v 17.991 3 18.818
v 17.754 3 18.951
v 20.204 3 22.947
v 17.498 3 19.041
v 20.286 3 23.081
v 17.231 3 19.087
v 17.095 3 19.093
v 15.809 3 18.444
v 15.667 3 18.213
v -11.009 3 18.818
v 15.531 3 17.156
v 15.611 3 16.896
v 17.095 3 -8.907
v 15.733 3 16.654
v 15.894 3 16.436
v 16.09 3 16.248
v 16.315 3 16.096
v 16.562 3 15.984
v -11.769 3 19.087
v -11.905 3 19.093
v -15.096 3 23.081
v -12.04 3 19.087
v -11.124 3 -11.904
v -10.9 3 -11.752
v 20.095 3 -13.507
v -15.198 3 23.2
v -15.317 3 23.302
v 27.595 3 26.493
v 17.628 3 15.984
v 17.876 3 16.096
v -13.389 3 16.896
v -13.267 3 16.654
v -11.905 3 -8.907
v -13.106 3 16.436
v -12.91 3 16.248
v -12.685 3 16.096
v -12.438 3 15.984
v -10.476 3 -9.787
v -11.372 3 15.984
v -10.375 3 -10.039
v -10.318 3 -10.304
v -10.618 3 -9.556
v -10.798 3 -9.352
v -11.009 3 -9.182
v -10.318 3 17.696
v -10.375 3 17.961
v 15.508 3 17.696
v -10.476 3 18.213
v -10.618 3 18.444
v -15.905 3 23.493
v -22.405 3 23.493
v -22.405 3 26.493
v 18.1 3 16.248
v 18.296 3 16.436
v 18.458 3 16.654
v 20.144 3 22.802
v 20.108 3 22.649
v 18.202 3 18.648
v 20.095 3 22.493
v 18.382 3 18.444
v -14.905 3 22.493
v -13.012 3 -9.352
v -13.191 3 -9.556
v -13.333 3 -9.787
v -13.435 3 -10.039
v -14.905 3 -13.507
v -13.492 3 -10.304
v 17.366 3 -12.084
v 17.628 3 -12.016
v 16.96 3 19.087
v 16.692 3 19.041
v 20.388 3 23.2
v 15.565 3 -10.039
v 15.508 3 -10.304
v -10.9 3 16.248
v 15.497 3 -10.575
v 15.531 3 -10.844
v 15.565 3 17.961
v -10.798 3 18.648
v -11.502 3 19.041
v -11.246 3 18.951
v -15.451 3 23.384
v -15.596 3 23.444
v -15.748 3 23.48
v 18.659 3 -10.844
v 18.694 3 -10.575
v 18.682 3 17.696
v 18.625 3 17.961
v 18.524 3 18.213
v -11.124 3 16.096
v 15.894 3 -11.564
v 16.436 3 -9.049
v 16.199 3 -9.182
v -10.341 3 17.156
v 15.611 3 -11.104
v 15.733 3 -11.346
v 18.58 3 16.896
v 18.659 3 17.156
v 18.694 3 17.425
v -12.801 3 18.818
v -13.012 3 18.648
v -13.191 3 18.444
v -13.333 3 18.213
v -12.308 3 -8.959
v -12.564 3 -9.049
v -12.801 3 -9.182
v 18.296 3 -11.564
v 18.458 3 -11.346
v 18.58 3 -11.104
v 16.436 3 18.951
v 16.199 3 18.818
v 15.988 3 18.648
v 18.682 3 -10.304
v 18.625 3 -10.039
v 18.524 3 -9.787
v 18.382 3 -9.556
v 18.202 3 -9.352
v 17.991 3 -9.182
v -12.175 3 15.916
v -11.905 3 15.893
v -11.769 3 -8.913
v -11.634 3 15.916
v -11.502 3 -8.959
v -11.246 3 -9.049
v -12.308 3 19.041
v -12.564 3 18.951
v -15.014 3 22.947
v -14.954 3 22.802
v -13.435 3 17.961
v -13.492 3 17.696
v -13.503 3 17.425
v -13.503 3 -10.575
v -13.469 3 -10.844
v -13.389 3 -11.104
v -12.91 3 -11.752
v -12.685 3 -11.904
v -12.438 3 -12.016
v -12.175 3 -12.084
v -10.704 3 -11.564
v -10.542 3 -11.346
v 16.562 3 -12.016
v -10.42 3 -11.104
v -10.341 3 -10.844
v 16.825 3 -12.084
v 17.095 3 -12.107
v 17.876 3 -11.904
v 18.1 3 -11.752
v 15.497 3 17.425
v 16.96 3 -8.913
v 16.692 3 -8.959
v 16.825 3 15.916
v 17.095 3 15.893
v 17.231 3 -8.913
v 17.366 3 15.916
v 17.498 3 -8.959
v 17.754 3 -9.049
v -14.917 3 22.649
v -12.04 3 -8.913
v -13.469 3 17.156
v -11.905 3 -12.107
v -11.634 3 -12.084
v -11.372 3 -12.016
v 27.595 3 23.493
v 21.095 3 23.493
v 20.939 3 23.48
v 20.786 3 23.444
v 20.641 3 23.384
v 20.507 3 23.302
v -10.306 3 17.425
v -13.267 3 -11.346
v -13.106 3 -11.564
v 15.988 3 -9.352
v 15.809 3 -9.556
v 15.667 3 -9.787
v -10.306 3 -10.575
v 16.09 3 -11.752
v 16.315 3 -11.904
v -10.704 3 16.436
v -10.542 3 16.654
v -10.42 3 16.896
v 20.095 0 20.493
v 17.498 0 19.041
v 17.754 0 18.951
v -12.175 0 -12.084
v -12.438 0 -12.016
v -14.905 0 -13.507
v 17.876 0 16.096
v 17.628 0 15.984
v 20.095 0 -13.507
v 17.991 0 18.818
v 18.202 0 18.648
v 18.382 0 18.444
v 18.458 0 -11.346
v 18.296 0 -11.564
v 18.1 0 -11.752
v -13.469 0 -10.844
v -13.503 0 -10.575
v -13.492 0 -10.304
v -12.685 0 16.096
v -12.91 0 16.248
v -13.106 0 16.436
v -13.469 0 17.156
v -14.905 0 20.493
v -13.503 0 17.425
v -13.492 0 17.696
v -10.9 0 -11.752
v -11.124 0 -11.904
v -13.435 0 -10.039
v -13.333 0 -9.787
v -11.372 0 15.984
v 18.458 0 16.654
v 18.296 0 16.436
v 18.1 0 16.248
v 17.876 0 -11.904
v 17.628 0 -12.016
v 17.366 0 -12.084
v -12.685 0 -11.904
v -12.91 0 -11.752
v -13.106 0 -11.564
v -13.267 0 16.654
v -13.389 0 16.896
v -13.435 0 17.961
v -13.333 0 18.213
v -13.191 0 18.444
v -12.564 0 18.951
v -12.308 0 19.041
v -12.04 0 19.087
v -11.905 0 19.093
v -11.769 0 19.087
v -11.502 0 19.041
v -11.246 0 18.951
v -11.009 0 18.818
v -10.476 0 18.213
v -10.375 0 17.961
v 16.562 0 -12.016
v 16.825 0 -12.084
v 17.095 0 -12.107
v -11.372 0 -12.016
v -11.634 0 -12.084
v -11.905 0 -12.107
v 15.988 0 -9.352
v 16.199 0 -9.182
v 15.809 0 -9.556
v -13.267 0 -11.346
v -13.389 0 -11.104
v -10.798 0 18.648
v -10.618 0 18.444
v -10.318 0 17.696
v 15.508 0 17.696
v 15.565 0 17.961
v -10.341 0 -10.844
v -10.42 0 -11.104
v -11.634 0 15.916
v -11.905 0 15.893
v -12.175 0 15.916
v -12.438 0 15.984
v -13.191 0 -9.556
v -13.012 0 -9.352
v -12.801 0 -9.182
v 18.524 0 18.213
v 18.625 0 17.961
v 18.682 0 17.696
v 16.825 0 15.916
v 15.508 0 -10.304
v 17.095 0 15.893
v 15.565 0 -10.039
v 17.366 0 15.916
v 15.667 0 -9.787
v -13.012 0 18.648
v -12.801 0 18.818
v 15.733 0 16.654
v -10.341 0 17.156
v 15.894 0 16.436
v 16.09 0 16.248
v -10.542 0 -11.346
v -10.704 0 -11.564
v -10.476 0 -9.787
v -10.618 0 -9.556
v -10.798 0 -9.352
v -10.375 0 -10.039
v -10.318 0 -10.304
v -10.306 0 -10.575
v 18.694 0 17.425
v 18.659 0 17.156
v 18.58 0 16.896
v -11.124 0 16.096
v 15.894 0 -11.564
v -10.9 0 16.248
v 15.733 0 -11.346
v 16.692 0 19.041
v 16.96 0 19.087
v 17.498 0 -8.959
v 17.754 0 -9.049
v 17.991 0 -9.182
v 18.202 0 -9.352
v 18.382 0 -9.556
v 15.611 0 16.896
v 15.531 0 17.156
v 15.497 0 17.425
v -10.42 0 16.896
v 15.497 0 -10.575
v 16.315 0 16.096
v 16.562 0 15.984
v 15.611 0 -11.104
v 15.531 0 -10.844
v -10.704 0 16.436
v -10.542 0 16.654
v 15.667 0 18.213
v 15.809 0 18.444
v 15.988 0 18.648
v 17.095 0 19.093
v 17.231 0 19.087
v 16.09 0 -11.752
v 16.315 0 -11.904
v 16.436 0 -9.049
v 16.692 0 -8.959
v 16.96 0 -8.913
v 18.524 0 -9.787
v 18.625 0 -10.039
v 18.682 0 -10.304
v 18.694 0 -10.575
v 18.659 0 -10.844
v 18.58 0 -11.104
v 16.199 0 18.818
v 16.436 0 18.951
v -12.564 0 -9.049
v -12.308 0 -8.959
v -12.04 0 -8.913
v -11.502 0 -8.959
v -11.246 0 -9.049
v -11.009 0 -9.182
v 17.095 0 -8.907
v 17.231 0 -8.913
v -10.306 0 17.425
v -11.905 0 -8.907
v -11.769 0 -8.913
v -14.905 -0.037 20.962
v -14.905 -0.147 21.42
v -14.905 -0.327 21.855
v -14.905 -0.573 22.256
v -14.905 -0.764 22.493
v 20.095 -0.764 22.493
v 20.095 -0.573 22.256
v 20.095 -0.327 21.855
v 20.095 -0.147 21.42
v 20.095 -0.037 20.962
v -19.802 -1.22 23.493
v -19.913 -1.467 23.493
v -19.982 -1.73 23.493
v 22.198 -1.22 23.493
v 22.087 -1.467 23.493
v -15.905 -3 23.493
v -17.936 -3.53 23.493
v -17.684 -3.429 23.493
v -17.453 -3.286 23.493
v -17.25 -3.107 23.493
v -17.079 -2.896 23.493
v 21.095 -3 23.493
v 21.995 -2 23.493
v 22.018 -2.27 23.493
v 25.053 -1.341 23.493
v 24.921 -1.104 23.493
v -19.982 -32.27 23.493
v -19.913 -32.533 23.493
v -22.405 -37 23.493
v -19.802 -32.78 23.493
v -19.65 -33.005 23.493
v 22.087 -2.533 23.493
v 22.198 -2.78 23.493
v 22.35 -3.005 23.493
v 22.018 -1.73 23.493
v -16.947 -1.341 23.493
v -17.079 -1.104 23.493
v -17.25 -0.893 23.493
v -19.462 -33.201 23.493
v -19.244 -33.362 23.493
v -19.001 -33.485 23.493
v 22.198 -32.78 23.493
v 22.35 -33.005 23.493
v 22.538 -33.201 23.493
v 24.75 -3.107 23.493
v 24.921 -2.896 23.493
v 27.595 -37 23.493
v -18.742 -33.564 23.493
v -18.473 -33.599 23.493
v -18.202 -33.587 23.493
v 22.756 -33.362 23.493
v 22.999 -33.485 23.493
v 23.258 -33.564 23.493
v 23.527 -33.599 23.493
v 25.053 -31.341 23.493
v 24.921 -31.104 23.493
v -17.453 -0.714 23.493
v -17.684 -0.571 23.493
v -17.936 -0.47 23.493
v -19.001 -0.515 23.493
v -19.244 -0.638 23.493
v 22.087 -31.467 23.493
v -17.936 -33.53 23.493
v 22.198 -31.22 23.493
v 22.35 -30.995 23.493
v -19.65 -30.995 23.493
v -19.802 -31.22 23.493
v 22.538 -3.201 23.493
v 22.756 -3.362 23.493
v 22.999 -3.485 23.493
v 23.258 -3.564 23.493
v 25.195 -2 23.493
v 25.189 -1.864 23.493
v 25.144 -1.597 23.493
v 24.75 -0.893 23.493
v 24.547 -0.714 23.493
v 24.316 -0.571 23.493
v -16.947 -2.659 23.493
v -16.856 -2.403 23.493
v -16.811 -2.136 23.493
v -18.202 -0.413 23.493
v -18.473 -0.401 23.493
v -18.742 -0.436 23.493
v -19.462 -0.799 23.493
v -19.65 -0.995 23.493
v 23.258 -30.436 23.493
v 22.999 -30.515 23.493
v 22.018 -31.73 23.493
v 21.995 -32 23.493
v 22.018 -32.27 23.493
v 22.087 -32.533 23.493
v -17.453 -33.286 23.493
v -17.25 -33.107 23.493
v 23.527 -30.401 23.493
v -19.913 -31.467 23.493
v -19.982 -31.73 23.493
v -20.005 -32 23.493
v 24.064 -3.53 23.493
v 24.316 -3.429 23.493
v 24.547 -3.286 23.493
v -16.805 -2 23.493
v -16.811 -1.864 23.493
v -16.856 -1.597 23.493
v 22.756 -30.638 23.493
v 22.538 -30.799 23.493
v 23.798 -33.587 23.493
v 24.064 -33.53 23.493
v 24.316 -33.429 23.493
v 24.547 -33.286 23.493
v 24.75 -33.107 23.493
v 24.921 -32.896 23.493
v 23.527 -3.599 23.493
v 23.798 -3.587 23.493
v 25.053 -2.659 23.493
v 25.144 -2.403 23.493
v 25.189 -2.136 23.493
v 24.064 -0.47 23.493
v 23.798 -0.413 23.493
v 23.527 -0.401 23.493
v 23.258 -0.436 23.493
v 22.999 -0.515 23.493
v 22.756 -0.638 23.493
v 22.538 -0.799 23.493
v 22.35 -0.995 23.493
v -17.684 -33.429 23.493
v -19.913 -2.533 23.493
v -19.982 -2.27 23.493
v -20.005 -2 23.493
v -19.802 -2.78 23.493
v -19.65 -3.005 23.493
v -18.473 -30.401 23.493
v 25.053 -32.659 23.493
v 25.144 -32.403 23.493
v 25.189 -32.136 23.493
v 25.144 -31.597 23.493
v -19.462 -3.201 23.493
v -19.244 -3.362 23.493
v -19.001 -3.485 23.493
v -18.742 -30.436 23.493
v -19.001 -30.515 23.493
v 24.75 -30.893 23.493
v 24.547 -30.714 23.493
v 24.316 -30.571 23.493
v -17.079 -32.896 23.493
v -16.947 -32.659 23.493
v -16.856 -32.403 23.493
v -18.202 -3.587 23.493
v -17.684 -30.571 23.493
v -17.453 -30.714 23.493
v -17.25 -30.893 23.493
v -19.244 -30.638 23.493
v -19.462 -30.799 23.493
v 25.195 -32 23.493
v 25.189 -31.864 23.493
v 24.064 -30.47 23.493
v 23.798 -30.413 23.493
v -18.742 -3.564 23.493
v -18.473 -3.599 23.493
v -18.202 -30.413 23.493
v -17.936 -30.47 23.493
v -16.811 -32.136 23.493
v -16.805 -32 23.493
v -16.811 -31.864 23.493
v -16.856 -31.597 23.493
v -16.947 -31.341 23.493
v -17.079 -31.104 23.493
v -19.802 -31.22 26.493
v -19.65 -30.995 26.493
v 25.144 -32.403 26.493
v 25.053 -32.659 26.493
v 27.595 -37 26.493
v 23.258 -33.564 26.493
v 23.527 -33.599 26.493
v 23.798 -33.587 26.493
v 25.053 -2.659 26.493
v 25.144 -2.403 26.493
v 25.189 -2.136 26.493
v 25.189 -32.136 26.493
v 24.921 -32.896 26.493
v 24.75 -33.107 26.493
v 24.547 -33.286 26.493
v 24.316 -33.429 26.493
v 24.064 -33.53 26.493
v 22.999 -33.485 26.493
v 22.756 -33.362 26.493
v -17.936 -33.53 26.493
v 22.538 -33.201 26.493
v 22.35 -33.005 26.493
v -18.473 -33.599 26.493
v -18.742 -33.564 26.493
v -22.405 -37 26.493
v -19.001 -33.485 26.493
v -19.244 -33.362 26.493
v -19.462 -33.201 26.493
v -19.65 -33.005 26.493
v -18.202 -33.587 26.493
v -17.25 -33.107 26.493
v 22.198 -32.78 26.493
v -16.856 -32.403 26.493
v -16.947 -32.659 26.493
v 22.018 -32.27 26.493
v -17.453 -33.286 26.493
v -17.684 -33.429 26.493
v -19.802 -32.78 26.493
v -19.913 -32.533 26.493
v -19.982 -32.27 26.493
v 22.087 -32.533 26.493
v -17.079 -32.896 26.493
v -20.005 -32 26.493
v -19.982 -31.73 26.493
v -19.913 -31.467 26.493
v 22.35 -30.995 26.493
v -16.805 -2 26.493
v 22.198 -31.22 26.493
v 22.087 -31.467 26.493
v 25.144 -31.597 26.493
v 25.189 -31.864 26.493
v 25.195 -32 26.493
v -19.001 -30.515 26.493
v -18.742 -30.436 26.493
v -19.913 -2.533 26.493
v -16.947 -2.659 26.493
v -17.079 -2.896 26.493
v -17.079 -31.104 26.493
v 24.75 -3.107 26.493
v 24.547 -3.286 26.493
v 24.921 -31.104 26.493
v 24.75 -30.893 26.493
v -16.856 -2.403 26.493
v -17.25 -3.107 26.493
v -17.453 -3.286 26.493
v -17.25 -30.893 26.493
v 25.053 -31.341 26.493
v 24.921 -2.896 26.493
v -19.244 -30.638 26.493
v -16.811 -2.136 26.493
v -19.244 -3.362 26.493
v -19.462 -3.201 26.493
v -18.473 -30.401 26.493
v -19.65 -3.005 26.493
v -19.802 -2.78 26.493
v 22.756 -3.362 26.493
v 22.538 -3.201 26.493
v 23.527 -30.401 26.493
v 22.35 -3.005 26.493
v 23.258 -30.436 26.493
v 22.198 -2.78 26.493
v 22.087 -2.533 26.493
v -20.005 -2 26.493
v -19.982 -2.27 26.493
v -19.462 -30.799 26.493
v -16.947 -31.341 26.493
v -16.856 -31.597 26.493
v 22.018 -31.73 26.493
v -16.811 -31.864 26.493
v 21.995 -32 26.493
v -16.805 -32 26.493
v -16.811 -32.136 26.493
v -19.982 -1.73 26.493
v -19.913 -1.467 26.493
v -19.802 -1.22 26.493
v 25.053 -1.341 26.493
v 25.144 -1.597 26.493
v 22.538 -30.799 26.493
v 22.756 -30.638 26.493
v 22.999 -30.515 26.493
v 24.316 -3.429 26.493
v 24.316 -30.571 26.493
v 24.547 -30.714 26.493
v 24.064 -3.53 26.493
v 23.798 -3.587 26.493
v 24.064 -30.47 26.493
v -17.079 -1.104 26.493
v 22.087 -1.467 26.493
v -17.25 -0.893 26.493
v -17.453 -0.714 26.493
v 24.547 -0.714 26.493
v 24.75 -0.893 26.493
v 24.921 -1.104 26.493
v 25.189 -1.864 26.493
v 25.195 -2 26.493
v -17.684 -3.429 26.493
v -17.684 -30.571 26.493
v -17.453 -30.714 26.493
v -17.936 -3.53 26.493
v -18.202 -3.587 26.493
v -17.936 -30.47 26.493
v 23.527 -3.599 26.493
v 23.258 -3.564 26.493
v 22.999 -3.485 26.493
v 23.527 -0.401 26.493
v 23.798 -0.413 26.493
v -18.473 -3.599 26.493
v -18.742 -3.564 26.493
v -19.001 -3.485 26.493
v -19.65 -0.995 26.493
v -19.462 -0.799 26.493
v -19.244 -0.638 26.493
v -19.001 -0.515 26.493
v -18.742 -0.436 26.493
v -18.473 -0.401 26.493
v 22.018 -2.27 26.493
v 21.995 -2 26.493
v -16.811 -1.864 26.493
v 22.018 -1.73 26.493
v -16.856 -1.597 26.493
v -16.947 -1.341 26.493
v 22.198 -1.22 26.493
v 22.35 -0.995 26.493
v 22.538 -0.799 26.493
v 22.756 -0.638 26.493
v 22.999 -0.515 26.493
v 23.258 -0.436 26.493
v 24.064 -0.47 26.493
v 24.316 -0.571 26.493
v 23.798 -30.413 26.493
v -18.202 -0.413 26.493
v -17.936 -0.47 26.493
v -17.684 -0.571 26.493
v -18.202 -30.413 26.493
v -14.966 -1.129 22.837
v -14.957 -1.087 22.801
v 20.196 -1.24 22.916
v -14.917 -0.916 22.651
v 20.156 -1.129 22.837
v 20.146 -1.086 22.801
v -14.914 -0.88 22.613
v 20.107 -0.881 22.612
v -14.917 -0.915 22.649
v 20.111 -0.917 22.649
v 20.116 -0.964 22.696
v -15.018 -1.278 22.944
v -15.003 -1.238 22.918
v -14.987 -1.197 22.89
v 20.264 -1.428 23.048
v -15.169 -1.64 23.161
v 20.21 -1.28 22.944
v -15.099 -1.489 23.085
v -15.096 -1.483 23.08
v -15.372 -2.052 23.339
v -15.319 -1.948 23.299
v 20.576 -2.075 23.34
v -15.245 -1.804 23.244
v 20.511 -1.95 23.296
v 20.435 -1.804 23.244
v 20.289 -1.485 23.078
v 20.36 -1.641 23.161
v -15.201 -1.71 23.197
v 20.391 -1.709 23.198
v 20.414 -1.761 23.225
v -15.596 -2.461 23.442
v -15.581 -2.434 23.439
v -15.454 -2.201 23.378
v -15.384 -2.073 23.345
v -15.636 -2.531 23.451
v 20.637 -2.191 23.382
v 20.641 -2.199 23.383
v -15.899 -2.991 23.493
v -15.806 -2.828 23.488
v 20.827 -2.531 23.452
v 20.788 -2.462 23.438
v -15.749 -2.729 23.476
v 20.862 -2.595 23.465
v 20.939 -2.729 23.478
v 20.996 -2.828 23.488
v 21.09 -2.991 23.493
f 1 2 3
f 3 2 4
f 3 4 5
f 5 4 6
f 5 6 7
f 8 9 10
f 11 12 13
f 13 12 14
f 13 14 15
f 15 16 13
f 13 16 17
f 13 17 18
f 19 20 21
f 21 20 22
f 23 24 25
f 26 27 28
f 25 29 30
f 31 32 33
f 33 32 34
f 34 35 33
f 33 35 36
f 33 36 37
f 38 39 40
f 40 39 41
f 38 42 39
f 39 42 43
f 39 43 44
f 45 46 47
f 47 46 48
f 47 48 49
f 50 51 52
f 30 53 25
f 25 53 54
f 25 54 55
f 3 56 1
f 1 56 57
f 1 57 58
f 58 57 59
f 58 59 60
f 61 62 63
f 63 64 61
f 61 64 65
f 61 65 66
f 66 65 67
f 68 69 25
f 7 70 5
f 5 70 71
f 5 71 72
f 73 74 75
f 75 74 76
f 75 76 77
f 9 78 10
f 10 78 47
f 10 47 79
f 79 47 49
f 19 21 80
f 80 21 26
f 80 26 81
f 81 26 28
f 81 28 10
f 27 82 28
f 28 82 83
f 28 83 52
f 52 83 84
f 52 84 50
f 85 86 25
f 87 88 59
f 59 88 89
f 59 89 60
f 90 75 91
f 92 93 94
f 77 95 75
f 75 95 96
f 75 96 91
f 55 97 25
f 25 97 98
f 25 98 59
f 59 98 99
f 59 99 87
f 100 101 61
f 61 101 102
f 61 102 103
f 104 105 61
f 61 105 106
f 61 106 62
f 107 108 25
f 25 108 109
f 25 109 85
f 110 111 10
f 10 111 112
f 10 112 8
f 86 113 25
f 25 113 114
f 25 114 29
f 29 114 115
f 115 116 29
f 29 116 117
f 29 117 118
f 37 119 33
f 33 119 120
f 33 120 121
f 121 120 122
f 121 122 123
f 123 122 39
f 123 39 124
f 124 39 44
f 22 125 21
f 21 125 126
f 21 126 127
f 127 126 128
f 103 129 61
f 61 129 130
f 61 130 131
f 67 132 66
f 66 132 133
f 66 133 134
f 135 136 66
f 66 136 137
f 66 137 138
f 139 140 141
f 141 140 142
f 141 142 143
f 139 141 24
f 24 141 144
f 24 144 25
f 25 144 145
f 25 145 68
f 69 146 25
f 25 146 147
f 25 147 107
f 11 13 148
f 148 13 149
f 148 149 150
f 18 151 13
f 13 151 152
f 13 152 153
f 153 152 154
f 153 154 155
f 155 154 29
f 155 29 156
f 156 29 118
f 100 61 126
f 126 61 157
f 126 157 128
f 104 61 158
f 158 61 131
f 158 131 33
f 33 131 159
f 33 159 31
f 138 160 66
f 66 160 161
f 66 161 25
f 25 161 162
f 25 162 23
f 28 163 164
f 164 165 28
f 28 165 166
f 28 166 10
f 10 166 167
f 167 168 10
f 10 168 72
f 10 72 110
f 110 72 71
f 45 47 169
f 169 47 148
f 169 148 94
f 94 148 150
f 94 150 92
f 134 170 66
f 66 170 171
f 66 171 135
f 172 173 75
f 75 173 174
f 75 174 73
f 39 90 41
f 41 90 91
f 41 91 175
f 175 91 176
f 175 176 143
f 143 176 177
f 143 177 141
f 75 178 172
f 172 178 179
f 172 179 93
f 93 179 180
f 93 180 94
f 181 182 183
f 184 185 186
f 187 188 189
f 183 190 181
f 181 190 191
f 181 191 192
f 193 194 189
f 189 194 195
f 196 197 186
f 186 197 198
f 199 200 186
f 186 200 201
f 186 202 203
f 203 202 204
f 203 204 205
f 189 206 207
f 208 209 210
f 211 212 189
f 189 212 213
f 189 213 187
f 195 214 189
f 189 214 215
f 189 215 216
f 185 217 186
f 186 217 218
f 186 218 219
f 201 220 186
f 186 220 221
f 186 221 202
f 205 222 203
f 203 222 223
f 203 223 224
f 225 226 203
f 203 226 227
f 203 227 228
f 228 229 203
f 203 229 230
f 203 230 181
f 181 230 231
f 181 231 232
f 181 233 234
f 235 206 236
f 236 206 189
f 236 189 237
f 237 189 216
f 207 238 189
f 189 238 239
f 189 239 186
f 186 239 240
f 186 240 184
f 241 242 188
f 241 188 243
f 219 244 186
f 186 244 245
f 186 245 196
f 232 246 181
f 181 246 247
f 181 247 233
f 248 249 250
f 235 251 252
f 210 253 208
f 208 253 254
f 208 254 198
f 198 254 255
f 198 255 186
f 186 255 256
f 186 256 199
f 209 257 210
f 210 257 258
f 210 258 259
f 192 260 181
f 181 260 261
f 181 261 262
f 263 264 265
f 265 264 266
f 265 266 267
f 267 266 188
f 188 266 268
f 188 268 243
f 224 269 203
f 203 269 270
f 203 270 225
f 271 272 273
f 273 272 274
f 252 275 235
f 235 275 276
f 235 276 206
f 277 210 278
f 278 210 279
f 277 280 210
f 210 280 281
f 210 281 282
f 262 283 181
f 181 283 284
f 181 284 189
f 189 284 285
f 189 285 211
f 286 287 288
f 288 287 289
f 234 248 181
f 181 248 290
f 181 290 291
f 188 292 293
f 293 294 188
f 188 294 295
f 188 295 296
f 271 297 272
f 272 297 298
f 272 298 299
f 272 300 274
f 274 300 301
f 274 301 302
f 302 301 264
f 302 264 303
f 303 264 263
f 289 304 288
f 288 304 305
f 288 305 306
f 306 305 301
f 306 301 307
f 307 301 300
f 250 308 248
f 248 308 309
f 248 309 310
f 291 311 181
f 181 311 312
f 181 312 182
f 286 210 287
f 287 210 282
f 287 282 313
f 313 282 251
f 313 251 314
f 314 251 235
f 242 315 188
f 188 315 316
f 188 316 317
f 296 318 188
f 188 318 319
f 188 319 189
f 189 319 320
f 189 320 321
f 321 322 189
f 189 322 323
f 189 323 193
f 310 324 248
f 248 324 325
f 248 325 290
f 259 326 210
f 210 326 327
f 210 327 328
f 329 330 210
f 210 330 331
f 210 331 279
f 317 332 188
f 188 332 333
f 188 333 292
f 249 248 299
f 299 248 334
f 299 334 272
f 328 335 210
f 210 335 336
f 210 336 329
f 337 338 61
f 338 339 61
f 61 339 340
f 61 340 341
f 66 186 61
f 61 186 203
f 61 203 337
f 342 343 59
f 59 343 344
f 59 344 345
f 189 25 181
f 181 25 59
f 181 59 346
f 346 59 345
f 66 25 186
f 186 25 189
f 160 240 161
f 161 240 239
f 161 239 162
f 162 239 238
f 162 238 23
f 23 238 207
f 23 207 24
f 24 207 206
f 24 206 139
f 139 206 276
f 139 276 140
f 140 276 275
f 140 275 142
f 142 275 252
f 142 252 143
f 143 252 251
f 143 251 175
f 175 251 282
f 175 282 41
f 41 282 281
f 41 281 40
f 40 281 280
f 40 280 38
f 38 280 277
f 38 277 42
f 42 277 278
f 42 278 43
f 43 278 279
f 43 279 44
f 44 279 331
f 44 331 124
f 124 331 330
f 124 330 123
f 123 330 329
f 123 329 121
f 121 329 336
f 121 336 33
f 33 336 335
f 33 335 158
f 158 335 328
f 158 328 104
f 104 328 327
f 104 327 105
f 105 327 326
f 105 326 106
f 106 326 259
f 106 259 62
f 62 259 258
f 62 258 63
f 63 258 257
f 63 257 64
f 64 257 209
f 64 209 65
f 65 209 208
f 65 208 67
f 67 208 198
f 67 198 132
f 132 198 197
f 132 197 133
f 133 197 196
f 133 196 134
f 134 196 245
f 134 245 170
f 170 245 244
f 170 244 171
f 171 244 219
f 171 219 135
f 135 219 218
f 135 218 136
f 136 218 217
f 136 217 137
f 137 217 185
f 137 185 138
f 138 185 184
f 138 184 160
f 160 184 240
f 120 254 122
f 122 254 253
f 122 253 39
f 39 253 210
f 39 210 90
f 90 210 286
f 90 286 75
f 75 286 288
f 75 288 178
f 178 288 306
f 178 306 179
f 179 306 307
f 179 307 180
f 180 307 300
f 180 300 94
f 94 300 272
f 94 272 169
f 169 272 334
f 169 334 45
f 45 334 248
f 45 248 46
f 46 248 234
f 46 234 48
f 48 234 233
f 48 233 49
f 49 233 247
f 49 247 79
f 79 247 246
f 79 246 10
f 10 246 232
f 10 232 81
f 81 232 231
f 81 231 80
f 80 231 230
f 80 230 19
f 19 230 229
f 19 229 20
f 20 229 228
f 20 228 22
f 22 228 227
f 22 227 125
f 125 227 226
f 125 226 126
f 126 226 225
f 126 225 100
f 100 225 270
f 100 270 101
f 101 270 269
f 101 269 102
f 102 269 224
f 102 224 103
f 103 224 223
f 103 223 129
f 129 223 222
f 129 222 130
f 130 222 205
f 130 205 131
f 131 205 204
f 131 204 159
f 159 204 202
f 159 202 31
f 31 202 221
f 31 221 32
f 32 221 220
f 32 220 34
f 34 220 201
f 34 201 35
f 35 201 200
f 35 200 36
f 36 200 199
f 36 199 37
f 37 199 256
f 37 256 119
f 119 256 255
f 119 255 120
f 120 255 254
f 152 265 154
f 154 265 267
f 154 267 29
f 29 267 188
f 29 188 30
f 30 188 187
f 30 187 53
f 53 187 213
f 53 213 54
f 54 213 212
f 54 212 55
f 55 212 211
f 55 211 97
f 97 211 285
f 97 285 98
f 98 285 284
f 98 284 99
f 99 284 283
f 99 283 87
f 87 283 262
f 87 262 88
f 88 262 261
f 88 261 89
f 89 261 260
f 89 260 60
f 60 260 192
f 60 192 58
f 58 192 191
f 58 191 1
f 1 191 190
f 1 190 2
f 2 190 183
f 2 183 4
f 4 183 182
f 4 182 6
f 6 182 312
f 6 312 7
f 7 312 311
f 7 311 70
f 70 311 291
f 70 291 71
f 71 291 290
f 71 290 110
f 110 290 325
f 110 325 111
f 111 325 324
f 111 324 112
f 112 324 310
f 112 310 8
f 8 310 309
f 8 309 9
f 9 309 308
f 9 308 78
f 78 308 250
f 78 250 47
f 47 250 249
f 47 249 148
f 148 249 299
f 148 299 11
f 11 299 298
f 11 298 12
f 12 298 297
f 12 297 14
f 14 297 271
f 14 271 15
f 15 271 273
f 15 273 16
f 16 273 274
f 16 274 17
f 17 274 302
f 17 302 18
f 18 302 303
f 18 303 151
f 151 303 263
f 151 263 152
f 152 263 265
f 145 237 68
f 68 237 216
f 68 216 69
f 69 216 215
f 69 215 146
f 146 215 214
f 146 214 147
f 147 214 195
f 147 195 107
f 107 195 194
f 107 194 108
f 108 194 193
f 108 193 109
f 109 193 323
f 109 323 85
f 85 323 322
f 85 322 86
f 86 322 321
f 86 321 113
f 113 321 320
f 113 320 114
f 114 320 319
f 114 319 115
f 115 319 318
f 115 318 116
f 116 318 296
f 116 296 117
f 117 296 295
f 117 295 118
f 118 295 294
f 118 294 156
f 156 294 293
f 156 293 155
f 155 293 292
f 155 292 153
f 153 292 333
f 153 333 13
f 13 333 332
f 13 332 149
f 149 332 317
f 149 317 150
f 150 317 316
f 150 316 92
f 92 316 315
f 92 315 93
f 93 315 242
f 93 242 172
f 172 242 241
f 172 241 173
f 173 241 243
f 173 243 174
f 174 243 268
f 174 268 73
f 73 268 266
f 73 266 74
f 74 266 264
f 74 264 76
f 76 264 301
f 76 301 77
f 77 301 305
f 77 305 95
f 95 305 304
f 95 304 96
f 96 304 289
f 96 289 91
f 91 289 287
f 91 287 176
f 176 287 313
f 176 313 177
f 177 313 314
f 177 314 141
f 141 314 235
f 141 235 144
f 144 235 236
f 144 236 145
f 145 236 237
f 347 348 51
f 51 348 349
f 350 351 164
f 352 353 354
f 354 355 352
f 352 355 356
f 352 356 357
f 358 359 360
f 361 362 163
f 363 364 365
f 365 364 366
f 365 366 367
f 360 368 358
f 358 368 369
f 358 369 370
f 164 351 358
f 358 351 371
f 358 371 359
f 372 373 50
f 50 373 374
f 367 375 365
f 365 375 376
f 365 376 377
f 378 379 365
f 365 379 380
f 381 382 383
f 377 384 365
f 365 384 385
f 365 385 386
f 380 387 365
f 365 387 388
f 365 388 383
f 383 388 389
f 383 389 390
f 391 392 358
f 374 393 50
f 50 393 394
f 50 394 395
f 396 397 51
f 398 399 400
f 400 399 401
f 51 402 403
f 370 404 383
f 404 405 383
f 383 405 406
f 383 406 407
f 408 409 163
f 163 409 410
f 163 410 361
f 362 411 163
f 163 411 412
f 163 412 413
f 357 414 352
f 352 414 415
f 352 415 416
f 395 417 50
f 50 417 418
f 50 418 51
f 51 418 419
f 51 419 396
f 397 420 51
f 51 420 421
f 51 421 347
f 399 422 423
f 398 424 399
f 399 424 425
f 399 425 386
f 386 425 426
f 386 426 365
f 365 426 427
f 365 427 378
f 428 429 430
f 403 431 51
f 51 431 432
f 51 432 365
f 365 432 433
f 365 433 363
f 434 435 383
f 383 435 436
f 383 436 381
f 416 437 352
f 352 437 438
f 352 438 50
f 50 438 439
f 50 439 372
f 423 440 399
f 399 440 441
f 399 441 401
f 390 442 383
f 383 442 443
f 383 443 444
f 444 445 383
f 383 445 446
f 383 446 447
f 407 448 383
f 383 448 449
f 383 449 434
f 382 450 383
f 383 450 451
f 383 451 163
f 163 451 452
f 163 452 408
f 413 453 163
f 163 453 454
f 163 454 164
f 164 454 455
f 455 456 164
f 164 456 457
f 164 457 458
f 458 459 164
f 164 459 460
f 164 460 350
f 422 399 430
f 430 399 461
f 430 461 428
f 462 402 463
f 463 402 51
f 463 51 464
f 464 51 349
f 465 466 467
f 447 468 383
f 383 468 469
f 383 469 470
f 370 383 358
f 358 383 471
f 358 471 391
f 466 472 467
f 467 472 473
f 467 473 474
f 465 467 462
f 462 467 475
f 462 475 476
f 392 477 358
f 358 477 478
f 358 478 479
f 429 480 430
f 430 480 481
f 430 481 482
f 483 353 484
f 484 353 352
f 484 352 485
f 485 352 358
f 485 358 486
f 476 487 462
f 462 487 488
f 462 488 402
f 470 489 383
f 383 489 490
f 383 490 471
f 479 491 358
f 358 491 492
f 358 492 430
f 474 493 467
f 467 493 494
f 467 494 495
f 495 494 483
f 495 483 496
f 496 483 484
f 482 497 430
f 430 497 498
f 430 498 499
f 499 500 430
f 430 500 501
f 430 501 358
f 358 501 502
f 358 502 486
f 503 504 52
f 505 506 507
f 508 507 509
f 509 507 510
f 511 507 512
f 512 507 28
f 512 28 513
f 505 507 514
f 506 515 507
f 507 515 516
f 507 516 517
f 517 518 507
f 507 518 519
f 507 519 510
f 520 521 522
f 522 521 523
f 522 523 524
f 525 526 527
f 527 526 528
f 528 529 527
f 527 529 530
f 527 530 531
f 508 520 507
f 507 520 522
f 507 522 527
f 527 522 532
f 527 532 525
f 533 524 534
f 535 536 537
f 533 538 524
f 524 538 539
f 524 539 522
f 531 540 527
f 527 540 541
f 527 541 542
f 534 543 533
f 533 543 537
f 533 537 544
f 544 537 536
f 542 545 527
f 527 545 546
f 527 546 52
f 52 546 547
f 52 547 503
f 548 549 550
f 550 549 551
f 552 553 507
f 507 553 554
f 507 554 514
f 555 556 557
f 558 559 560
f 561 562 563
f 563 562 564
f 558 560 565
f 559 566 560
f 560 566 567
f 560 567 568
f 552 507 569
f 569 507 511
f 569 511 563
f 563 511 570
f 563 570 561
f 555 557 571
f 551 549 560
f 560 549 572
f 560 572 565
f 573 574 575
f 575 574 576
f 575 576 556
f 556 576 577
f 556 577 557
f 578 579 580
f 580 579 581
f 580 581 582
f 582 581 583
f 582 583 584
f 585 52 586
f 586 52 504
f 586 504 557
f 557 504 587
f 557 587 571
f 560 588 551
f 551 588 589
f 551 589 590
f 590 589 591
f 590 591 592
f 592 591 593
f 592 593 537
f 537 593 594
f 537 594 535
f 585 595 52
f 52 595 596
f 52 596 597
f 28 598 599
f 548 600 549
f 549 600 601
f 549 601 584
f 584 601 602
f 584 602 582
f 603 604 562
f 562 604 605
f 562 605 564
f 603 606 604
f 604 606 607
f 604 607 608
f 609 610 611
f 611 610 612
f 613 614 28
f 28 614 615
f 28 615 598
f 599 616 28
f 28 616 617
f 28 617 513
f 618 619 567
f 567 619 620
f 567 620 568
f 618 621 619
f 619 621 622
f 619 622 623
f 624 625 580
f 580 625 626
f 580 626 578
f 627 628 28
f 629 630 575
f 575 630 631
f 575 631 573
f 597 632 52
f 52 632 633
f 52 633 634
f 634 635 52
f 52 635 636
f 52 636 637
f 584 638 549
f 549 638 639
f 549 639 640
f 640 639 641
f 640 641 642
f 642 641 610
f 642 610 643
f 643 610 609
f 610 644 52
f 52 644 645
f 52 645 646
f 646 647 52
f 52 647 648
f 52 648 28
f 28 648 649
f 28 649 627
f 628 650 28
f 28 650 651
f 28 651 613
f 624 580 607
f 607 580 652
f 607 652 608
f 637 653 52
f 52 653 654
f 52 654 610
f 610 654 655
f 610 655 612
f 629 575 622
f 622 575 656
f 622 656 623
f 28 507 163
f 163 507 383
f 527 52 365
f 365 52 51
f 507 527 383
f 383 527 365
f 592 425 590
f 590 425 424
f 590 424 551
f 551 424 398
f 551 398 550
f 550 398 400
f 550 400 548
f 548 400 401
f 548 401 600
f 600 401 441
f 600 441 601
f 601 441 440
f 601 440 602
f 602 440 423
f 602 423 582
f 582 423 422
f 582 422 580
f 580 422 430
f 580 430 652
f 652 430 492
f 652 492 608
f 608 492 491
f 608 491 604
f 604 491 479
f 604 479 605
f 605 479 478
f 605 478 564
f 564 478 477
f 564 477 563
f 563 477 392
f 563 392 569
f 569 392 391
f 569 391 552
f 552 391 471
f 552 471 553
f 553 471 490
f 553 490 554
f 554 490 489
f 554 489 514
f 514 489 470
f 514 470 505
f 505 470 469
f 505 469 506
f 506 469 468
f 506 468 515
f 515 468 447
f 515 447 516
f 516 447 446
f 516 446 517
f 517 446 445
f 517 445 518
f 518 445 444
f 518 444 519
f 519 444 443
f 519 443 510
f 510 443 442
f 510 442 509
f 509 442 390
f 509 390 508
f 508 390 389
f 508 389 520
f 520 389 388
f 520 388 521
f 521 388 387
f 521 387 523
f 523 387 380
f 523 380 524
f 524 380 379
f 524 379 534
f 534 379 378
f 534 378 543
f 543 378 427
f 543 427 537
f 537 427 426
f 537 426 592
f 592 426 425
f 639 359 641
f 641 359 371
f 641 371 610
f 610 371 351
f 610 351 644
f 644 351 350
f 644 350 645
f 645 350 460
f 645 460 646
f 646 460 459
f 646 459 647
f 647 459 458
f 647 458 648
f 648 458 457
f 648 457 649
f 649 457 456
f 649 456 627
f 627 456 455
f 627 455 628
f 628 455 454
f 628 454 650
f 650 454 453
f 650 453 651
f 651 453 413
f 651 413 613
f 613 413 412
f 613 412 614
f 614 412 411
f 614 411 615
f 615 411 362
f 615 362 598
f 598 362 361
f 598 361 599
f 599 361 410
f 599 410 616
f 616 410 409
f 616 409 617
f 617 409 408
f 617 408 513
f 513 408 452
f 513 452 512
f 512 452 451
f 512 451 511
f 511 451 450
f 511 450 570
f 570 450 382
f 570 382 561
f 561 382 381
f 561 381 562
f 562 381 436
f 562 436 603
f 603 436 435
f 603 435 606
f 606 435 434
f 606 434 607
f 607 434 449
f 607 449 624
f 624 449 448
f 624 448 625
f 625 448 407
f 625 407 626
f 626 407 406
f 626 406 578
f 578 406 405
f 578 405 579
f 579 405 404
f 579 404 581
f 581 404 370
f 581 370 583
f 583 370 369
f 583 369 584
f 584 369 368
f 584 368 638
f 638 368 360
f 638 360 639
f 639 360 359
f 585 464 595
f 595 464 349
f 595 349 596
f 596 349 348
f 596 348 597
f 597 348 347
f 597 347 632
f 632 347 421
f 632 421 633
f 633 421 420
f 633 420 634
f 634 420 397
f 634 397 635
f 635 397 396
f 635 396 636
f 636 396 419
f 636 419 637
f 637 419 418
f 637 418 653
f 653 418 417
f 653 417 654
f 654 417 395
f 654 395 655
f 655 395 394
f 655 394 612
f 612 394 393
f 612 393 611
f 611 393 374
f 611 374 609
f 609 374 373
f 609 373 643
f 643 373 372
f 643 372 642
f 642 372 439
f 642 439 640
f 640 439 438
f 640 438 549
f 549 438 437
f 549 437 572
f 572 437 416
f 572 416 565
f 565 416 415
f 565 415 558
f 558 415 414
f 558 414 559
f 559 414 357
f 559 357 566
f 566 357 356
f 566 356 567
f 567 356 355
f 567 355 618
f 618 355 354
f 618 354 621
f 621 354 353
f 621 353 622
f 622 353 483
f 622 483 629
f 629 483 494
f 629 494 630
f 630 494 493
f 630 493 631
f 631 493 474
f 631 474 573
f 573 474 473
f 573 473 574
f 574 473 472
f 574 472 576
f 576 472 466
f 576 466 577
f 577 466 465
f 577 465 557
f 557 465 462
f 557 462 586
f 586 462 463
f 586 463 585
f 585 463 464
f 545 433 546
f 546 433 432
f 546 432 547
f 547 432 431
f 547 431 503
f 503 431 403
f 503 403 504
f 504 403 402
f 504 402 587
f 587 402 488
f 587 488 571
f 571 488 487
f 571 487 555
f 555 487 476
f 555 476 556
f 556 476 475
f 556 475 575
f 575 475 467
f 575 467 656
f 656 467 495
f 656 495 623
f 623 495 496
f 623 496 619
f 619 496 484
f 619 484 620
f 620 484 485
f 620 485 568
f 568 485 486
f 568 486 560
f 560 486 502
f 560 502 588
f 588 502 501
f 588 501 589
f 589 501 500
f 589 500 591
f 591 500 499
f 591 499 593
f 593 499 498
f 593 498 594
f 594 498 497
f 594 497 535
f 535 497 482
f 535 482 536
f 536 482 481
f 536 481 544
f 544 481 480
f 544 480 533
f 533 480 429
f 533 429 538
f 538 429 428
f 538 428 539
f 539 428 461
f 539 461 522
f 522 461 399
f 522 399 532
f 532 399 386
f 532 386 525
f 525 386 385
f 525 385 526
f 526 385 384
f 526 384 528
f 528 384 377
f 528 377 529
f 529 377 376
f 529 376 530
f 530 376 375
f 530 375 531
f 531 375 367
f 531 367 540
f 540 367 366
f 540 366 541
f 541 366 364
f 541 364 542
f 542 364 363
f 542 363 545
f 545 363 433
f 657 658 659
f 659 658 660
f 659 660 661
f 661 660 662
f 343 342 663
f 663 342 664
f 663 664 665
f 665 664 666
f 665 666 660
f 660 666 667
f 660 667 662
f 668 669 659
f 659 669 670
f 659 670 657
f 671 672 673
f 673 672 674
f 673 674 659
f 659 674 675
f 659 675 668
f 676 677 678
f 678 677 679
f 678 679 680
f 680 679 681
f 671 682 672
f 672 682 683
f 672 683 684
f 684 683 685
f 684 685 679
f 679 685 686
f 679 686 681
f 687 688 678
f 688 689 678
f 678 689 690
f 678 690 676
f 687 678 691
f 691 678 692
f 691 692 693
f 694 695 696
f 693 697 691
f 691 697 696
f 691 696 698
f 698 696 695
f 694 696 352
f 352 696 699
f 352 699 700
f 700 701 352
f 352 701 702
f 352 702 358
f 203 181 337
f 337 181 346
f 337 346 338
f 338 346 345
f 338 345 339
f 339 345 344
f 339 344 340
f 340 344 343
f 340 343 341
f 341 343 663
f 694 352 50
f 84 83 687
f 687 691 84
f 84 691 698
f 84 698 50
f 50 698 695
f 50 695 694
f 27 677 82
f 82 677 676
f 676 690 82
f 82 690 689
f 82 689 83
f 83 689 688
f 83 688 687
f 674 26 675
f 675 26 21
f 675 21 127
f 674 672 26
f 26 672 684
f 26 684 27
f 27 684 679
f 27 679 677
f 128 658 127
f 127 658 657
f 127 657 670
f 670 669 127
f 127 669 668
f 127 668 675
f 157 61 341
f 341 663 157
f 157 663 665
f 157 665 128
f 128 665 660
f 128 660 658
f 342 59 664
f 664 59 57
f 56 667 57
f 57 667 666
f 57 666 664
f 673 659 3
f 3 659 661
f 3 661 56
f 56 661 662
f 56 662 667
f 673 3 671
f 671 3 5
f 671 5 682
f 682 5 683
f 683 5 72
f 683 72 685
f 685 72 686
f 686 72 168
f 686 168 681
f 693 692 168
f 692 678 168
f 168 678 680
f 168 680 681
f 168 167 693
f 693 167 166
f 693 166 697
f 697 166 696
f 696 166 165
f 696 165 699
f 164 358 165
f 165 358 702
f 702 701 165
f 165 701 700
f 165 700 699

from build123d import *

# Parameters (mm, degrees)
SKETCH1_W           = 35
SKETCH1_H           = 37
SKETCH1_R           = 1.6
BOSS_EXTRUDE1_DEPTH = 3
SKETCH2_W           = 50
SKETCH2_H           = 40
SKETCH2_R           = 1.6
BOSS_EXTRUDE2_DEPTH = 3
FILLET1_R           = 3
FILLET2_R           = 1
FILLET3_R           = 1


with BuildPart() as part:
    # Sketch1 → Boss-Extrude1 (new body)
    with BuildSketch(Plane(origin=(0, 0, 0), x_dir=(1, 0, 0), z_dir=(0, 1, 0))):
        with Locations((2.595206121, -4.992767018)):
            Rectangle(SKETCH1_W, SKETCH1_H)
        with Locations((-11.904793879, 10.507232982)):
            Circle(SKETCH1_R, mode=Mode.SUBTRACT)
        with Locations((-11.904793879, -17.492767018)):
            Circle(SKETCH1_R, mode=Mode.SUBTRACT)
        with Locations((17.095206121, -17.492767018)):
            Circle(SKETCH1_R, mode=Mode.SUBTRACT)
        with Locations((17.095206121, 10.507232982)):
            Circle(SKETCH1_R, mode=Mode.SUBTRACT)
    extrude(amount=BOSS_EXTRUDE1_DEPTH)

    # Sketch2 → Boss-Extrude2 (add)
    with BuildSketch(Plane.XY.offset(23.492767018)):
        with Locations((2.595206121, -17)):
            Rectangle(SKETCH2_W, SKETCH2_H)
        with Locations((23.595206121, -32)):
            Circle(SKETCH2_R, mode=Mode.SUBTRACT)
        with Locations((23.595206121, -2)):
            Circle(SKETCH2_R, mode=Mode.SUBTRACT)
        with Locations((-18.404793879, -2)):
            Circle(SKETCH2_R, mode=Mode.SUBTRACT)
        with Locations((-18.404793879, -32)):
            Circle(SKETCH2_R, mode=Mode.SUBTRACT)
    extrude(amount=BOSS_EXTRUDE2_DEPTH)

    # Fillet1
    fillet1_edges = [part.edges().sort_by_distance(p)[0] for p in [
        (2.595206121, 0, 23.492767018),
    ]]
    fillet(fillet1_edges, radius=FILLET1_R)

    # Fillet2
    fillet2_edges = [part.edges().sort_by_distance(p)[0] for p in [
        (-14.904793879, -1.5, 23.492767018),
    ]]
    fillet(fillet2_edges, radius=FILLET2_R)

    # Fillet3
    fillet3_edges = [part.edges().sort_by_distance(p)[0] for p in [
        (20.095206121, -1.5, 23.492767018),
    ]]
    fillet(fillet3_edges, radius=FILLET3_R)


solid = part.part
